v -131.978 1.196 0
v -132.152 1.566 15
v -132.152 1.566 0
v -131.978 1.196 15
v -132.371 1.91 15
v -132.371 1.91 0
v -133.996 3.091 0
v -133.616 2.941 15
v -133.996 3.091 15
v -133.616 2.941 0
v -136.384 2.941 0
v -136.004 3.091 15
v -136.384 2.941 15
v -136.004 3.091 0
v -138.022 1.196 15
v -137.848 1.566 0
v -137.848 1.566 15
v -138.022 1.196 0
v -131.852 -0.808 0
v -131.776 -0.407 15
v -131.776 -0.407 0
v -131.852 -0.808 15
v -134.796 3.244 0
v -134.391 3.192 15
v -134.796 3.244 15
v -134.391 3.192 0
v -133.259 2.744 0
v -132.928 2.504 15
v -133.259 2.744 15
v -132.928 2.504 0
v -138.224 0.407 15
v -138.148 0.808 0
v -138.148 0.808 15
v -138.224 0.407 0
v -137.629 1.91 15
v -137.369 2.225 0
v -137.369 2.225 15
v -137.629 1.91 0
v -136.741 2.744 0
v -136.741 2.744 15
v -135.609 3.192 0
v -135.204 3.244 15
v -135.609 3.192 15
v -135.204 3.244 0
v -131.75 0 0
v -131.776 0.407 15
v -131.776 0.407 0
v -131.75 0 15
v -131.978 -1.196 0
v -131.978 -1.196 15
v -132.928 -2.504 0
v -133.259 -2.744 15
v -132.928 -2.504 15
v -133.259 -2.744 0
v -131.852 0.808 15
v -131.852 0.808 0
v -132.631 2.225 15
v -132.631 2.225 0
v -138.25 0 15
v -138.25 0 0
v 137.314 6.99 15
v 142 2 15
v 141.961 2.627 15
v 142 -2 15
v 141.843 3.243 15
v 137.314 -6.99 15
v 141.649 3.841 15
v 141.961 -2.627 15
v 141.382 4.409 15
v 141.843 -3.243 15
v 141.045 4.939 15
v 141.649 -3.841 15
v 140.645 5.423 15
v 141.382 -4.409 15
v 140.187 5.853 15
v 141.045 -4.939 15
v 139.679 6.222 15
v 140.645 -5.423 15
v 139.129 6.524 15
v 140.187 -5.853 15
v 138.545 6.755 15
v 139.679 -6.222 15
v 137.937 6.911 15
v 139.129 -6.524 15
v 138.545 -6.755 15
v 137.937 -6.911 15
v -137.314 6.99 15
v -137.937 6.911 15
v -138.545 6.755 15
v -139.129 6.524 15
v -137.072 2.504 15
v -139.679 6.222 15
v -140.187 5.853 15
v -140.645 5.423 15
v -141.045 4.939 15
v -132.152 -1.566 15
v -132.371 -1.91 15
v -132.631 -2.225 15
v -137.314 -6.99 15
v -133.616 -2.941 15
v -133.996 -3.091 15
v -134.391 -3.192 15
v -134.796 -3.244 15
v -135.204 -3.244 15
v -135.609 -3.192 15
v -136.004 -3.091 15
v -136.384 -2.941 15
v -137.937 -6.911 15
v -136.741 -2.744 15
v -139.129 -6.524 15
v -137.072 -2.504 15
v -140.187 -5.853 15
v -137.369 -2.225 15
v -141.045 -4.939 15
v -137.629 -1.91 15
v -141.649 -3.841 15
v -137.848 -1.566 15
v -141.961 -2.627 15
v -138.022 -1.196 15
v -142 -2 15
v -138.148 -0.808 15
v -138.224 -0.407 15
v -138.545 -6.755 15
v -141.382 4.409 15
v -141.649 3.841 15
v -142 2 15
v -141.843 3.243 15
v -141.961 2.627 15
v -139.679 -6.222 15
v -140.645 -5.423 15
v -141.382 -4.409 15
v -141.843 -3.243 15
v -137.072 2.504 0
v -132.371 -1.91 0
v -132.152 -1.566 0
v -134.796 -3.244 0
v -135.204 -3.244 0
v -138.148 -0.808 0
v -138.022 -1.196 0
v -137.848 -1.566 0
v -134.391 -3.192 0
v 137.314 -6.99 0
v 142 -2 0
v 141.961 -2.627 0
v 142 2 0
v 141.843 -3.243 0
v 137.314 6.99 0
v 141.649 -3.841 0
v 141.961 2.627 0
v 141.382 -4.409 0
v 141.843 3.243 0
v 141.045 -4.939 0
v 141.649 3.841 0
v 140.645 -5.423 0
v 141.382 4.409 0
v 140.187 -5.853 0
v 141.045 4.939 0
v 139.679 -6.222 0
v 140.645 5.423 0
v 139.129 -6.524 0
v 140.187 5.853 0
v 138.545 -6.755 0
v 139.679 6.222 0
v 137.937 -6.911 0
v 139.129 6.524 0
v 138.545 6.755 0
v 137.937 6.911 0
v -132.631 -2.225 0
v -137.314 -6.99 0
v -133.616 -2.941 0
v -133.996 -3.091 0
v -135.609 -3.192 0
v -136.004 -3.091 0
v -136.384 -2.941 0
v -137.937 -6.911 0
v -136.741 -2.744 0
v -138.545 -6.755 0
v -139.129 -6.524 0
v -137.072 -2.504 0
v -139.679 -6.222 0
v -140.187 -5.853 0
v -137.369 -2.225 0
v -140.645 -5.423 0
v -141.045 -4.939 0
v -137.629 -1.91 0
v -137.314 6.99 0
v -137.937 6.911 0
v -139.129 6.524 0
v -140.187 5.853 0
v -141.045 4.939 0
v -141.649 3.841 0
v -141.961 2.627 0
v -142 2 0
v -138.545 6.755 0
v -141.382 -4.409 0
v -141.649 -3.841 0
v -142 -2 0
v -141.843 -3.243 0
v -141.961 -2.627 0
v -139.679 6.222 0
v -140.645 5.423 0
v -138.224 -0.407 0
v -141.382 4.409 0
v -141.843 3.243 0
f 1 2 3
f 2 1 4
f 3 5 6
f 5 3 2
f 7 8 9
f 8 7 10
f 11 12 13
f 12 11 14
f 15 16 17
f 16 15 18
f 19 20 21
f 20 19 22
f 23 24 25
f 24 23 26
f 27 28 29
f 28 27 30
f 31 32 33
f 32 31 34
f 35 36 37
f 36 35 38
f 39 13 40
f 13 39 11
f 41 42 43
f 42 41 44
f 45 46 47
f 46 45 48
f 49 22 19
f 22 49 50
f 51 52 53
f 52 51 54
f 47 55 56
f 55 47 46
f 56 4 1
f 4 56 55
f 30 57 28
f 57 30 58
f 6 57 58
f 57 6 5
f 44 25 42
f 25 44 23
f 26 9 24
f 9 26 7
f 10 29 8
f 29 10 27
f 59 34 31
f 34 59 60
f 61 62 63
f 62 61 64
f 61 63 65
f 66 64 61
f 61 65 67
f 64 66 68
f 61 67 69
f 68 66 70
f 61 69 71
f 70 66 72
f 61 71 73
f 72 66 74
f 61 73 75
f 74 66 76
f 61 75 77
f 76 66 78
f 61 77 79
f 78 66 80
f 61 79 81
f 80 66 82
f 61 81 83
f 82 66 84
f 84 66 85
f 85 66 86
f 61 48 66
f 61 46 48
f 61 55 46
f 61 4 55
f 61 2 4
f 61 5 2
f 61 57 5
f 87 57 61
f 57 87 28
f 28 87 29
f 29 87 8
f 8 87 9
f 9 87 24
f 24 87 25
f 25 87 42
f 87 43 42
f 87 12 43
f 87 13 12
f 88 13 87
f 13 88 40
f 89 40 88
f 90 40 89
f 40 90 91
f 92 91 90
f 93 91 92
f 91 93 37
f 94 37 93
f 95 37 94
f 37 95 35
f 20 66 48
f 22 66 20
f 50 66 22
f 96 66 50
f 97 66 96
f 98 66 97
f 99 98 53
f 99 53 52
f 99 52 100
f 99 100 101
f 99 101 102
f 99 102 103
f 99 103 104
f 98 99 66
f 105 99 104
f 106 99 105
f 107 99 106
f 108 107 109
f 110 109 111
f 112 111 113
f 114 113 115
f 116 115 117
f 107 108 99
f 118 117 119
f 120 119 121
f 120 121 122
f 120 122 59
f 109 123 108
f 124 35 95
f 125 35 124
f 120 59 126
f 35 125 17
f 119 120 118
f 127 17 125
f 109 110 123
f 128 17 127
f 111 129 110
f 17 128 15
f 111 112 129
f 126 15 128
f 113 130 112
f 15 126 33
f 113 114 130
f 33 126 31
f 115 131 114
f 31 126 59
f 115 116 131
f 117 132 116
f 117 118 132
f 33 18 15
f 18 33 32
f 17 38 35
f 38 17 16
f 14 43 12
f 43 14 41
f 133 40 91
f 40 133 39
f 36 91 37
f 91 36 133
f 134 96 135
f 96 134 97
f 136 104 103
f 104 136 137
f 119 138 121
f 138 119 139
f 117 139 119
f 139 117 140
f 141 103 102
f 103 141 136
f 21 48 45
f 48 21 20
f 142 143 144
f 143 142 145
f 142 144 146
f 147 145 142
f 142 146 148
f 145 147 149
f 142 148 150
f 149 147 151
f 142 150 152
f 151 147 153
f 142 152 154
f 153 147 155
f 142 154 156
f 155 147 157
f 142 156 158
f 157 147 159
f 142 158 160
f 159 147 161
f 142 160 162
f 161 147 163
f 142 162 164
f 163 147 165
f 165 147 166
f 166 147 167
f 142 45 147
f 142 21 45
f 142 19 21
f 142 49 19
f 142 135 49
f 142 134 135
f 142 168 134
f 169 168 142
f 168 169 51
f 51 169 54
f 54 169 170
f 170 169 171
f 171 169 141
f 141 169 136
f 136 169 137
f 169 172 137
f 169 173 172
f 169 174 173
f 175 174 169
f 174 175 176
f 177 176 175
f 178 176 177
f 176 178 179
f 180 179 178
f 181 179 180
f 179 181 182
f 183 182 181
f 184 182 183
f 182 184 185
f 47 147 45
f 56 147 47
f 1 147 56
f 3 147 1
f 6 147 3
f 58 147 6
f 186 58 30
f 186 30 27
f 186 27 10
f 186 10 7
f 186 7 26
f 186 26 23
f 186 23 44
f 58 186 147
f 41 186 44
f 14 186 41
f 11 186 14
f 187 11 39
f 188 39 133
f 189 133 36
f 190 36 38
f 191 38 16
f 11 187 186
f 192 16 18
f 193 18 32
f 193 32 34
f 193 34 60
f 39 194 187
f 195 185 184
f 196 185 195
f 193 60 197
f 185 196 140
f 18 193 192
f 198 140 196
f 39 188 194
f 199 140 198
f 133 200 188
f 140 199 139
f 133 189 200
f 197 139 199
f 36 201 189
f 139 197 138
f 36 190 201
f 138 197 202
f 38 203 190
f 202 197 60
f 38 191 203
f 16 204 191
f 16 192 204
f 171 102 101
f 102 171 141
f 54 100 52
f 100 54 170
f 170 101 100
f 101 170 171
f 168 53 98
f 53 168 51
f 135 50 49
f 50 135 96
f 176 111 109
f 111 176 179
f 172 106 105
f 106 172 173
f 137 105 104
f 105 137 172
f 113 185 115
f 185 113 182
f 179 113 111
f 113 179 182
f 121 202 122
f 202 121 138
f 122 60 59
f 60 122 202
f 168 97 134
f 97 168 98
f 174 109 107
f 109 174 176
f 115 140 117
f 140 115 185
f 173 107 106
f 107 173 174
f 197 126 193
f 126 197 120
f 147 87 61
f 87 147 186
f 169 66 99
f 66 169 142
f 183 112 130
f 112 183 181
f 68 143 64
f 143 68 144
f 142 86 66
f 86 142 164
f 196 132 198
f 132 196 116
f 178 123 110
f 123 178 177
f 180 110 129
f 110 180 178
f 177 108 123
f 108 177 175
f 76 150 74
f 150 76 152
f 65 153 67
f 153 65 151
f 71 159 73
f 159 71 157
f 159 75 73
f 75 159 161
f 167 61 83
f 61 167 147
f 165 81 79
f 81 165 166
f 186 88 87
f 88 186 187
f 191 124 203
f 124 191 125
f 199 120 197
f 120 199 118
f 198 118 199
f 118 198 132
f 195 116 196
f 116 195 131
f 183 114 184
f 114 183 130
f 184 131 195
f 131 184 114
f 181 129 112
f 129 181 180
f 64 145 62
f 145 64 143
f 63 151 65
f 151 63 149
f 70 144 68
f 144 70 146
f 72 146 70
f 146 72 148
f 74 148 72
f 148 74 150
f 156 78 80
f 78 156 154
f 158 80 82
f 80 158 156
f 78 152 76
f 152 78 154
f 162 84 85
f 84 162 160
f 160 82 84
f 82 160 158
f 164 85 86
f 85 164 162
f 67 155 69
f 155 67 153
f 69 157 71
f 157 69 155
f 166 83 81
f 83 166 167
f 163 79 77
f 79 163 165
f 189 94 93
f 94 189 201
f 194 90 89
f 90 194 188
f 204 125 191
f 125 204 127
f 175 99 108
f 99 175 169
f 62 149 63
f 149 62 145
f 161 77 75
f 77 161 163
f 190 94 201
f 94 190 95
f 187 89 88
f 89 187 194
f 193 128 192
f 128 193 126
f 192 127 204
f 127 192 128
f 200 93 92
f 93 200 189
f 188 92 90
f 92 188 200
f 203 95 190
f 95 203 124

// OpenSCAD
$fn = 50;


difference() {
	union() {
		hull() {
			translate(v = [-137.0000000000, 2.0000000000, 0]) {
				cylinder(h = 15, r = 5);
			}
			translate(v = [137.0000000000, 2.0000000000, 0]) {
				cylinder(h = 15, r = 5);
			}
			translate(v = [-137.0000000000, -2.0000000000, 0]) {
				cylinder(h = 15, r = 5);
			}
			translate(v = [137.0000000000, -2.0000000000, 0]) {
				cylinder(h = 15, r = 5);
			}
		}
	}
	union() {
		translate(v = [-135.0000000000, 0.0000000000, 0]) {
			cylinder(h = 15, r = 3.2500000000);
		}
		translate(v = [-135.0000000000, 0.0000000000, 0]) {
			cylinder(h = 15, r = 1.8000000000);
		}
		translate(v = [-135.0000000000, 0.0000000000, 0]) {
			cylinder(h = 15, r = 1.8000000000);
		}
		translate(v = [-135.0000000000, 0.0000000000, 0]) {
			cylinder(h = 15, r = 1.8000000000);
		}
	}
}
